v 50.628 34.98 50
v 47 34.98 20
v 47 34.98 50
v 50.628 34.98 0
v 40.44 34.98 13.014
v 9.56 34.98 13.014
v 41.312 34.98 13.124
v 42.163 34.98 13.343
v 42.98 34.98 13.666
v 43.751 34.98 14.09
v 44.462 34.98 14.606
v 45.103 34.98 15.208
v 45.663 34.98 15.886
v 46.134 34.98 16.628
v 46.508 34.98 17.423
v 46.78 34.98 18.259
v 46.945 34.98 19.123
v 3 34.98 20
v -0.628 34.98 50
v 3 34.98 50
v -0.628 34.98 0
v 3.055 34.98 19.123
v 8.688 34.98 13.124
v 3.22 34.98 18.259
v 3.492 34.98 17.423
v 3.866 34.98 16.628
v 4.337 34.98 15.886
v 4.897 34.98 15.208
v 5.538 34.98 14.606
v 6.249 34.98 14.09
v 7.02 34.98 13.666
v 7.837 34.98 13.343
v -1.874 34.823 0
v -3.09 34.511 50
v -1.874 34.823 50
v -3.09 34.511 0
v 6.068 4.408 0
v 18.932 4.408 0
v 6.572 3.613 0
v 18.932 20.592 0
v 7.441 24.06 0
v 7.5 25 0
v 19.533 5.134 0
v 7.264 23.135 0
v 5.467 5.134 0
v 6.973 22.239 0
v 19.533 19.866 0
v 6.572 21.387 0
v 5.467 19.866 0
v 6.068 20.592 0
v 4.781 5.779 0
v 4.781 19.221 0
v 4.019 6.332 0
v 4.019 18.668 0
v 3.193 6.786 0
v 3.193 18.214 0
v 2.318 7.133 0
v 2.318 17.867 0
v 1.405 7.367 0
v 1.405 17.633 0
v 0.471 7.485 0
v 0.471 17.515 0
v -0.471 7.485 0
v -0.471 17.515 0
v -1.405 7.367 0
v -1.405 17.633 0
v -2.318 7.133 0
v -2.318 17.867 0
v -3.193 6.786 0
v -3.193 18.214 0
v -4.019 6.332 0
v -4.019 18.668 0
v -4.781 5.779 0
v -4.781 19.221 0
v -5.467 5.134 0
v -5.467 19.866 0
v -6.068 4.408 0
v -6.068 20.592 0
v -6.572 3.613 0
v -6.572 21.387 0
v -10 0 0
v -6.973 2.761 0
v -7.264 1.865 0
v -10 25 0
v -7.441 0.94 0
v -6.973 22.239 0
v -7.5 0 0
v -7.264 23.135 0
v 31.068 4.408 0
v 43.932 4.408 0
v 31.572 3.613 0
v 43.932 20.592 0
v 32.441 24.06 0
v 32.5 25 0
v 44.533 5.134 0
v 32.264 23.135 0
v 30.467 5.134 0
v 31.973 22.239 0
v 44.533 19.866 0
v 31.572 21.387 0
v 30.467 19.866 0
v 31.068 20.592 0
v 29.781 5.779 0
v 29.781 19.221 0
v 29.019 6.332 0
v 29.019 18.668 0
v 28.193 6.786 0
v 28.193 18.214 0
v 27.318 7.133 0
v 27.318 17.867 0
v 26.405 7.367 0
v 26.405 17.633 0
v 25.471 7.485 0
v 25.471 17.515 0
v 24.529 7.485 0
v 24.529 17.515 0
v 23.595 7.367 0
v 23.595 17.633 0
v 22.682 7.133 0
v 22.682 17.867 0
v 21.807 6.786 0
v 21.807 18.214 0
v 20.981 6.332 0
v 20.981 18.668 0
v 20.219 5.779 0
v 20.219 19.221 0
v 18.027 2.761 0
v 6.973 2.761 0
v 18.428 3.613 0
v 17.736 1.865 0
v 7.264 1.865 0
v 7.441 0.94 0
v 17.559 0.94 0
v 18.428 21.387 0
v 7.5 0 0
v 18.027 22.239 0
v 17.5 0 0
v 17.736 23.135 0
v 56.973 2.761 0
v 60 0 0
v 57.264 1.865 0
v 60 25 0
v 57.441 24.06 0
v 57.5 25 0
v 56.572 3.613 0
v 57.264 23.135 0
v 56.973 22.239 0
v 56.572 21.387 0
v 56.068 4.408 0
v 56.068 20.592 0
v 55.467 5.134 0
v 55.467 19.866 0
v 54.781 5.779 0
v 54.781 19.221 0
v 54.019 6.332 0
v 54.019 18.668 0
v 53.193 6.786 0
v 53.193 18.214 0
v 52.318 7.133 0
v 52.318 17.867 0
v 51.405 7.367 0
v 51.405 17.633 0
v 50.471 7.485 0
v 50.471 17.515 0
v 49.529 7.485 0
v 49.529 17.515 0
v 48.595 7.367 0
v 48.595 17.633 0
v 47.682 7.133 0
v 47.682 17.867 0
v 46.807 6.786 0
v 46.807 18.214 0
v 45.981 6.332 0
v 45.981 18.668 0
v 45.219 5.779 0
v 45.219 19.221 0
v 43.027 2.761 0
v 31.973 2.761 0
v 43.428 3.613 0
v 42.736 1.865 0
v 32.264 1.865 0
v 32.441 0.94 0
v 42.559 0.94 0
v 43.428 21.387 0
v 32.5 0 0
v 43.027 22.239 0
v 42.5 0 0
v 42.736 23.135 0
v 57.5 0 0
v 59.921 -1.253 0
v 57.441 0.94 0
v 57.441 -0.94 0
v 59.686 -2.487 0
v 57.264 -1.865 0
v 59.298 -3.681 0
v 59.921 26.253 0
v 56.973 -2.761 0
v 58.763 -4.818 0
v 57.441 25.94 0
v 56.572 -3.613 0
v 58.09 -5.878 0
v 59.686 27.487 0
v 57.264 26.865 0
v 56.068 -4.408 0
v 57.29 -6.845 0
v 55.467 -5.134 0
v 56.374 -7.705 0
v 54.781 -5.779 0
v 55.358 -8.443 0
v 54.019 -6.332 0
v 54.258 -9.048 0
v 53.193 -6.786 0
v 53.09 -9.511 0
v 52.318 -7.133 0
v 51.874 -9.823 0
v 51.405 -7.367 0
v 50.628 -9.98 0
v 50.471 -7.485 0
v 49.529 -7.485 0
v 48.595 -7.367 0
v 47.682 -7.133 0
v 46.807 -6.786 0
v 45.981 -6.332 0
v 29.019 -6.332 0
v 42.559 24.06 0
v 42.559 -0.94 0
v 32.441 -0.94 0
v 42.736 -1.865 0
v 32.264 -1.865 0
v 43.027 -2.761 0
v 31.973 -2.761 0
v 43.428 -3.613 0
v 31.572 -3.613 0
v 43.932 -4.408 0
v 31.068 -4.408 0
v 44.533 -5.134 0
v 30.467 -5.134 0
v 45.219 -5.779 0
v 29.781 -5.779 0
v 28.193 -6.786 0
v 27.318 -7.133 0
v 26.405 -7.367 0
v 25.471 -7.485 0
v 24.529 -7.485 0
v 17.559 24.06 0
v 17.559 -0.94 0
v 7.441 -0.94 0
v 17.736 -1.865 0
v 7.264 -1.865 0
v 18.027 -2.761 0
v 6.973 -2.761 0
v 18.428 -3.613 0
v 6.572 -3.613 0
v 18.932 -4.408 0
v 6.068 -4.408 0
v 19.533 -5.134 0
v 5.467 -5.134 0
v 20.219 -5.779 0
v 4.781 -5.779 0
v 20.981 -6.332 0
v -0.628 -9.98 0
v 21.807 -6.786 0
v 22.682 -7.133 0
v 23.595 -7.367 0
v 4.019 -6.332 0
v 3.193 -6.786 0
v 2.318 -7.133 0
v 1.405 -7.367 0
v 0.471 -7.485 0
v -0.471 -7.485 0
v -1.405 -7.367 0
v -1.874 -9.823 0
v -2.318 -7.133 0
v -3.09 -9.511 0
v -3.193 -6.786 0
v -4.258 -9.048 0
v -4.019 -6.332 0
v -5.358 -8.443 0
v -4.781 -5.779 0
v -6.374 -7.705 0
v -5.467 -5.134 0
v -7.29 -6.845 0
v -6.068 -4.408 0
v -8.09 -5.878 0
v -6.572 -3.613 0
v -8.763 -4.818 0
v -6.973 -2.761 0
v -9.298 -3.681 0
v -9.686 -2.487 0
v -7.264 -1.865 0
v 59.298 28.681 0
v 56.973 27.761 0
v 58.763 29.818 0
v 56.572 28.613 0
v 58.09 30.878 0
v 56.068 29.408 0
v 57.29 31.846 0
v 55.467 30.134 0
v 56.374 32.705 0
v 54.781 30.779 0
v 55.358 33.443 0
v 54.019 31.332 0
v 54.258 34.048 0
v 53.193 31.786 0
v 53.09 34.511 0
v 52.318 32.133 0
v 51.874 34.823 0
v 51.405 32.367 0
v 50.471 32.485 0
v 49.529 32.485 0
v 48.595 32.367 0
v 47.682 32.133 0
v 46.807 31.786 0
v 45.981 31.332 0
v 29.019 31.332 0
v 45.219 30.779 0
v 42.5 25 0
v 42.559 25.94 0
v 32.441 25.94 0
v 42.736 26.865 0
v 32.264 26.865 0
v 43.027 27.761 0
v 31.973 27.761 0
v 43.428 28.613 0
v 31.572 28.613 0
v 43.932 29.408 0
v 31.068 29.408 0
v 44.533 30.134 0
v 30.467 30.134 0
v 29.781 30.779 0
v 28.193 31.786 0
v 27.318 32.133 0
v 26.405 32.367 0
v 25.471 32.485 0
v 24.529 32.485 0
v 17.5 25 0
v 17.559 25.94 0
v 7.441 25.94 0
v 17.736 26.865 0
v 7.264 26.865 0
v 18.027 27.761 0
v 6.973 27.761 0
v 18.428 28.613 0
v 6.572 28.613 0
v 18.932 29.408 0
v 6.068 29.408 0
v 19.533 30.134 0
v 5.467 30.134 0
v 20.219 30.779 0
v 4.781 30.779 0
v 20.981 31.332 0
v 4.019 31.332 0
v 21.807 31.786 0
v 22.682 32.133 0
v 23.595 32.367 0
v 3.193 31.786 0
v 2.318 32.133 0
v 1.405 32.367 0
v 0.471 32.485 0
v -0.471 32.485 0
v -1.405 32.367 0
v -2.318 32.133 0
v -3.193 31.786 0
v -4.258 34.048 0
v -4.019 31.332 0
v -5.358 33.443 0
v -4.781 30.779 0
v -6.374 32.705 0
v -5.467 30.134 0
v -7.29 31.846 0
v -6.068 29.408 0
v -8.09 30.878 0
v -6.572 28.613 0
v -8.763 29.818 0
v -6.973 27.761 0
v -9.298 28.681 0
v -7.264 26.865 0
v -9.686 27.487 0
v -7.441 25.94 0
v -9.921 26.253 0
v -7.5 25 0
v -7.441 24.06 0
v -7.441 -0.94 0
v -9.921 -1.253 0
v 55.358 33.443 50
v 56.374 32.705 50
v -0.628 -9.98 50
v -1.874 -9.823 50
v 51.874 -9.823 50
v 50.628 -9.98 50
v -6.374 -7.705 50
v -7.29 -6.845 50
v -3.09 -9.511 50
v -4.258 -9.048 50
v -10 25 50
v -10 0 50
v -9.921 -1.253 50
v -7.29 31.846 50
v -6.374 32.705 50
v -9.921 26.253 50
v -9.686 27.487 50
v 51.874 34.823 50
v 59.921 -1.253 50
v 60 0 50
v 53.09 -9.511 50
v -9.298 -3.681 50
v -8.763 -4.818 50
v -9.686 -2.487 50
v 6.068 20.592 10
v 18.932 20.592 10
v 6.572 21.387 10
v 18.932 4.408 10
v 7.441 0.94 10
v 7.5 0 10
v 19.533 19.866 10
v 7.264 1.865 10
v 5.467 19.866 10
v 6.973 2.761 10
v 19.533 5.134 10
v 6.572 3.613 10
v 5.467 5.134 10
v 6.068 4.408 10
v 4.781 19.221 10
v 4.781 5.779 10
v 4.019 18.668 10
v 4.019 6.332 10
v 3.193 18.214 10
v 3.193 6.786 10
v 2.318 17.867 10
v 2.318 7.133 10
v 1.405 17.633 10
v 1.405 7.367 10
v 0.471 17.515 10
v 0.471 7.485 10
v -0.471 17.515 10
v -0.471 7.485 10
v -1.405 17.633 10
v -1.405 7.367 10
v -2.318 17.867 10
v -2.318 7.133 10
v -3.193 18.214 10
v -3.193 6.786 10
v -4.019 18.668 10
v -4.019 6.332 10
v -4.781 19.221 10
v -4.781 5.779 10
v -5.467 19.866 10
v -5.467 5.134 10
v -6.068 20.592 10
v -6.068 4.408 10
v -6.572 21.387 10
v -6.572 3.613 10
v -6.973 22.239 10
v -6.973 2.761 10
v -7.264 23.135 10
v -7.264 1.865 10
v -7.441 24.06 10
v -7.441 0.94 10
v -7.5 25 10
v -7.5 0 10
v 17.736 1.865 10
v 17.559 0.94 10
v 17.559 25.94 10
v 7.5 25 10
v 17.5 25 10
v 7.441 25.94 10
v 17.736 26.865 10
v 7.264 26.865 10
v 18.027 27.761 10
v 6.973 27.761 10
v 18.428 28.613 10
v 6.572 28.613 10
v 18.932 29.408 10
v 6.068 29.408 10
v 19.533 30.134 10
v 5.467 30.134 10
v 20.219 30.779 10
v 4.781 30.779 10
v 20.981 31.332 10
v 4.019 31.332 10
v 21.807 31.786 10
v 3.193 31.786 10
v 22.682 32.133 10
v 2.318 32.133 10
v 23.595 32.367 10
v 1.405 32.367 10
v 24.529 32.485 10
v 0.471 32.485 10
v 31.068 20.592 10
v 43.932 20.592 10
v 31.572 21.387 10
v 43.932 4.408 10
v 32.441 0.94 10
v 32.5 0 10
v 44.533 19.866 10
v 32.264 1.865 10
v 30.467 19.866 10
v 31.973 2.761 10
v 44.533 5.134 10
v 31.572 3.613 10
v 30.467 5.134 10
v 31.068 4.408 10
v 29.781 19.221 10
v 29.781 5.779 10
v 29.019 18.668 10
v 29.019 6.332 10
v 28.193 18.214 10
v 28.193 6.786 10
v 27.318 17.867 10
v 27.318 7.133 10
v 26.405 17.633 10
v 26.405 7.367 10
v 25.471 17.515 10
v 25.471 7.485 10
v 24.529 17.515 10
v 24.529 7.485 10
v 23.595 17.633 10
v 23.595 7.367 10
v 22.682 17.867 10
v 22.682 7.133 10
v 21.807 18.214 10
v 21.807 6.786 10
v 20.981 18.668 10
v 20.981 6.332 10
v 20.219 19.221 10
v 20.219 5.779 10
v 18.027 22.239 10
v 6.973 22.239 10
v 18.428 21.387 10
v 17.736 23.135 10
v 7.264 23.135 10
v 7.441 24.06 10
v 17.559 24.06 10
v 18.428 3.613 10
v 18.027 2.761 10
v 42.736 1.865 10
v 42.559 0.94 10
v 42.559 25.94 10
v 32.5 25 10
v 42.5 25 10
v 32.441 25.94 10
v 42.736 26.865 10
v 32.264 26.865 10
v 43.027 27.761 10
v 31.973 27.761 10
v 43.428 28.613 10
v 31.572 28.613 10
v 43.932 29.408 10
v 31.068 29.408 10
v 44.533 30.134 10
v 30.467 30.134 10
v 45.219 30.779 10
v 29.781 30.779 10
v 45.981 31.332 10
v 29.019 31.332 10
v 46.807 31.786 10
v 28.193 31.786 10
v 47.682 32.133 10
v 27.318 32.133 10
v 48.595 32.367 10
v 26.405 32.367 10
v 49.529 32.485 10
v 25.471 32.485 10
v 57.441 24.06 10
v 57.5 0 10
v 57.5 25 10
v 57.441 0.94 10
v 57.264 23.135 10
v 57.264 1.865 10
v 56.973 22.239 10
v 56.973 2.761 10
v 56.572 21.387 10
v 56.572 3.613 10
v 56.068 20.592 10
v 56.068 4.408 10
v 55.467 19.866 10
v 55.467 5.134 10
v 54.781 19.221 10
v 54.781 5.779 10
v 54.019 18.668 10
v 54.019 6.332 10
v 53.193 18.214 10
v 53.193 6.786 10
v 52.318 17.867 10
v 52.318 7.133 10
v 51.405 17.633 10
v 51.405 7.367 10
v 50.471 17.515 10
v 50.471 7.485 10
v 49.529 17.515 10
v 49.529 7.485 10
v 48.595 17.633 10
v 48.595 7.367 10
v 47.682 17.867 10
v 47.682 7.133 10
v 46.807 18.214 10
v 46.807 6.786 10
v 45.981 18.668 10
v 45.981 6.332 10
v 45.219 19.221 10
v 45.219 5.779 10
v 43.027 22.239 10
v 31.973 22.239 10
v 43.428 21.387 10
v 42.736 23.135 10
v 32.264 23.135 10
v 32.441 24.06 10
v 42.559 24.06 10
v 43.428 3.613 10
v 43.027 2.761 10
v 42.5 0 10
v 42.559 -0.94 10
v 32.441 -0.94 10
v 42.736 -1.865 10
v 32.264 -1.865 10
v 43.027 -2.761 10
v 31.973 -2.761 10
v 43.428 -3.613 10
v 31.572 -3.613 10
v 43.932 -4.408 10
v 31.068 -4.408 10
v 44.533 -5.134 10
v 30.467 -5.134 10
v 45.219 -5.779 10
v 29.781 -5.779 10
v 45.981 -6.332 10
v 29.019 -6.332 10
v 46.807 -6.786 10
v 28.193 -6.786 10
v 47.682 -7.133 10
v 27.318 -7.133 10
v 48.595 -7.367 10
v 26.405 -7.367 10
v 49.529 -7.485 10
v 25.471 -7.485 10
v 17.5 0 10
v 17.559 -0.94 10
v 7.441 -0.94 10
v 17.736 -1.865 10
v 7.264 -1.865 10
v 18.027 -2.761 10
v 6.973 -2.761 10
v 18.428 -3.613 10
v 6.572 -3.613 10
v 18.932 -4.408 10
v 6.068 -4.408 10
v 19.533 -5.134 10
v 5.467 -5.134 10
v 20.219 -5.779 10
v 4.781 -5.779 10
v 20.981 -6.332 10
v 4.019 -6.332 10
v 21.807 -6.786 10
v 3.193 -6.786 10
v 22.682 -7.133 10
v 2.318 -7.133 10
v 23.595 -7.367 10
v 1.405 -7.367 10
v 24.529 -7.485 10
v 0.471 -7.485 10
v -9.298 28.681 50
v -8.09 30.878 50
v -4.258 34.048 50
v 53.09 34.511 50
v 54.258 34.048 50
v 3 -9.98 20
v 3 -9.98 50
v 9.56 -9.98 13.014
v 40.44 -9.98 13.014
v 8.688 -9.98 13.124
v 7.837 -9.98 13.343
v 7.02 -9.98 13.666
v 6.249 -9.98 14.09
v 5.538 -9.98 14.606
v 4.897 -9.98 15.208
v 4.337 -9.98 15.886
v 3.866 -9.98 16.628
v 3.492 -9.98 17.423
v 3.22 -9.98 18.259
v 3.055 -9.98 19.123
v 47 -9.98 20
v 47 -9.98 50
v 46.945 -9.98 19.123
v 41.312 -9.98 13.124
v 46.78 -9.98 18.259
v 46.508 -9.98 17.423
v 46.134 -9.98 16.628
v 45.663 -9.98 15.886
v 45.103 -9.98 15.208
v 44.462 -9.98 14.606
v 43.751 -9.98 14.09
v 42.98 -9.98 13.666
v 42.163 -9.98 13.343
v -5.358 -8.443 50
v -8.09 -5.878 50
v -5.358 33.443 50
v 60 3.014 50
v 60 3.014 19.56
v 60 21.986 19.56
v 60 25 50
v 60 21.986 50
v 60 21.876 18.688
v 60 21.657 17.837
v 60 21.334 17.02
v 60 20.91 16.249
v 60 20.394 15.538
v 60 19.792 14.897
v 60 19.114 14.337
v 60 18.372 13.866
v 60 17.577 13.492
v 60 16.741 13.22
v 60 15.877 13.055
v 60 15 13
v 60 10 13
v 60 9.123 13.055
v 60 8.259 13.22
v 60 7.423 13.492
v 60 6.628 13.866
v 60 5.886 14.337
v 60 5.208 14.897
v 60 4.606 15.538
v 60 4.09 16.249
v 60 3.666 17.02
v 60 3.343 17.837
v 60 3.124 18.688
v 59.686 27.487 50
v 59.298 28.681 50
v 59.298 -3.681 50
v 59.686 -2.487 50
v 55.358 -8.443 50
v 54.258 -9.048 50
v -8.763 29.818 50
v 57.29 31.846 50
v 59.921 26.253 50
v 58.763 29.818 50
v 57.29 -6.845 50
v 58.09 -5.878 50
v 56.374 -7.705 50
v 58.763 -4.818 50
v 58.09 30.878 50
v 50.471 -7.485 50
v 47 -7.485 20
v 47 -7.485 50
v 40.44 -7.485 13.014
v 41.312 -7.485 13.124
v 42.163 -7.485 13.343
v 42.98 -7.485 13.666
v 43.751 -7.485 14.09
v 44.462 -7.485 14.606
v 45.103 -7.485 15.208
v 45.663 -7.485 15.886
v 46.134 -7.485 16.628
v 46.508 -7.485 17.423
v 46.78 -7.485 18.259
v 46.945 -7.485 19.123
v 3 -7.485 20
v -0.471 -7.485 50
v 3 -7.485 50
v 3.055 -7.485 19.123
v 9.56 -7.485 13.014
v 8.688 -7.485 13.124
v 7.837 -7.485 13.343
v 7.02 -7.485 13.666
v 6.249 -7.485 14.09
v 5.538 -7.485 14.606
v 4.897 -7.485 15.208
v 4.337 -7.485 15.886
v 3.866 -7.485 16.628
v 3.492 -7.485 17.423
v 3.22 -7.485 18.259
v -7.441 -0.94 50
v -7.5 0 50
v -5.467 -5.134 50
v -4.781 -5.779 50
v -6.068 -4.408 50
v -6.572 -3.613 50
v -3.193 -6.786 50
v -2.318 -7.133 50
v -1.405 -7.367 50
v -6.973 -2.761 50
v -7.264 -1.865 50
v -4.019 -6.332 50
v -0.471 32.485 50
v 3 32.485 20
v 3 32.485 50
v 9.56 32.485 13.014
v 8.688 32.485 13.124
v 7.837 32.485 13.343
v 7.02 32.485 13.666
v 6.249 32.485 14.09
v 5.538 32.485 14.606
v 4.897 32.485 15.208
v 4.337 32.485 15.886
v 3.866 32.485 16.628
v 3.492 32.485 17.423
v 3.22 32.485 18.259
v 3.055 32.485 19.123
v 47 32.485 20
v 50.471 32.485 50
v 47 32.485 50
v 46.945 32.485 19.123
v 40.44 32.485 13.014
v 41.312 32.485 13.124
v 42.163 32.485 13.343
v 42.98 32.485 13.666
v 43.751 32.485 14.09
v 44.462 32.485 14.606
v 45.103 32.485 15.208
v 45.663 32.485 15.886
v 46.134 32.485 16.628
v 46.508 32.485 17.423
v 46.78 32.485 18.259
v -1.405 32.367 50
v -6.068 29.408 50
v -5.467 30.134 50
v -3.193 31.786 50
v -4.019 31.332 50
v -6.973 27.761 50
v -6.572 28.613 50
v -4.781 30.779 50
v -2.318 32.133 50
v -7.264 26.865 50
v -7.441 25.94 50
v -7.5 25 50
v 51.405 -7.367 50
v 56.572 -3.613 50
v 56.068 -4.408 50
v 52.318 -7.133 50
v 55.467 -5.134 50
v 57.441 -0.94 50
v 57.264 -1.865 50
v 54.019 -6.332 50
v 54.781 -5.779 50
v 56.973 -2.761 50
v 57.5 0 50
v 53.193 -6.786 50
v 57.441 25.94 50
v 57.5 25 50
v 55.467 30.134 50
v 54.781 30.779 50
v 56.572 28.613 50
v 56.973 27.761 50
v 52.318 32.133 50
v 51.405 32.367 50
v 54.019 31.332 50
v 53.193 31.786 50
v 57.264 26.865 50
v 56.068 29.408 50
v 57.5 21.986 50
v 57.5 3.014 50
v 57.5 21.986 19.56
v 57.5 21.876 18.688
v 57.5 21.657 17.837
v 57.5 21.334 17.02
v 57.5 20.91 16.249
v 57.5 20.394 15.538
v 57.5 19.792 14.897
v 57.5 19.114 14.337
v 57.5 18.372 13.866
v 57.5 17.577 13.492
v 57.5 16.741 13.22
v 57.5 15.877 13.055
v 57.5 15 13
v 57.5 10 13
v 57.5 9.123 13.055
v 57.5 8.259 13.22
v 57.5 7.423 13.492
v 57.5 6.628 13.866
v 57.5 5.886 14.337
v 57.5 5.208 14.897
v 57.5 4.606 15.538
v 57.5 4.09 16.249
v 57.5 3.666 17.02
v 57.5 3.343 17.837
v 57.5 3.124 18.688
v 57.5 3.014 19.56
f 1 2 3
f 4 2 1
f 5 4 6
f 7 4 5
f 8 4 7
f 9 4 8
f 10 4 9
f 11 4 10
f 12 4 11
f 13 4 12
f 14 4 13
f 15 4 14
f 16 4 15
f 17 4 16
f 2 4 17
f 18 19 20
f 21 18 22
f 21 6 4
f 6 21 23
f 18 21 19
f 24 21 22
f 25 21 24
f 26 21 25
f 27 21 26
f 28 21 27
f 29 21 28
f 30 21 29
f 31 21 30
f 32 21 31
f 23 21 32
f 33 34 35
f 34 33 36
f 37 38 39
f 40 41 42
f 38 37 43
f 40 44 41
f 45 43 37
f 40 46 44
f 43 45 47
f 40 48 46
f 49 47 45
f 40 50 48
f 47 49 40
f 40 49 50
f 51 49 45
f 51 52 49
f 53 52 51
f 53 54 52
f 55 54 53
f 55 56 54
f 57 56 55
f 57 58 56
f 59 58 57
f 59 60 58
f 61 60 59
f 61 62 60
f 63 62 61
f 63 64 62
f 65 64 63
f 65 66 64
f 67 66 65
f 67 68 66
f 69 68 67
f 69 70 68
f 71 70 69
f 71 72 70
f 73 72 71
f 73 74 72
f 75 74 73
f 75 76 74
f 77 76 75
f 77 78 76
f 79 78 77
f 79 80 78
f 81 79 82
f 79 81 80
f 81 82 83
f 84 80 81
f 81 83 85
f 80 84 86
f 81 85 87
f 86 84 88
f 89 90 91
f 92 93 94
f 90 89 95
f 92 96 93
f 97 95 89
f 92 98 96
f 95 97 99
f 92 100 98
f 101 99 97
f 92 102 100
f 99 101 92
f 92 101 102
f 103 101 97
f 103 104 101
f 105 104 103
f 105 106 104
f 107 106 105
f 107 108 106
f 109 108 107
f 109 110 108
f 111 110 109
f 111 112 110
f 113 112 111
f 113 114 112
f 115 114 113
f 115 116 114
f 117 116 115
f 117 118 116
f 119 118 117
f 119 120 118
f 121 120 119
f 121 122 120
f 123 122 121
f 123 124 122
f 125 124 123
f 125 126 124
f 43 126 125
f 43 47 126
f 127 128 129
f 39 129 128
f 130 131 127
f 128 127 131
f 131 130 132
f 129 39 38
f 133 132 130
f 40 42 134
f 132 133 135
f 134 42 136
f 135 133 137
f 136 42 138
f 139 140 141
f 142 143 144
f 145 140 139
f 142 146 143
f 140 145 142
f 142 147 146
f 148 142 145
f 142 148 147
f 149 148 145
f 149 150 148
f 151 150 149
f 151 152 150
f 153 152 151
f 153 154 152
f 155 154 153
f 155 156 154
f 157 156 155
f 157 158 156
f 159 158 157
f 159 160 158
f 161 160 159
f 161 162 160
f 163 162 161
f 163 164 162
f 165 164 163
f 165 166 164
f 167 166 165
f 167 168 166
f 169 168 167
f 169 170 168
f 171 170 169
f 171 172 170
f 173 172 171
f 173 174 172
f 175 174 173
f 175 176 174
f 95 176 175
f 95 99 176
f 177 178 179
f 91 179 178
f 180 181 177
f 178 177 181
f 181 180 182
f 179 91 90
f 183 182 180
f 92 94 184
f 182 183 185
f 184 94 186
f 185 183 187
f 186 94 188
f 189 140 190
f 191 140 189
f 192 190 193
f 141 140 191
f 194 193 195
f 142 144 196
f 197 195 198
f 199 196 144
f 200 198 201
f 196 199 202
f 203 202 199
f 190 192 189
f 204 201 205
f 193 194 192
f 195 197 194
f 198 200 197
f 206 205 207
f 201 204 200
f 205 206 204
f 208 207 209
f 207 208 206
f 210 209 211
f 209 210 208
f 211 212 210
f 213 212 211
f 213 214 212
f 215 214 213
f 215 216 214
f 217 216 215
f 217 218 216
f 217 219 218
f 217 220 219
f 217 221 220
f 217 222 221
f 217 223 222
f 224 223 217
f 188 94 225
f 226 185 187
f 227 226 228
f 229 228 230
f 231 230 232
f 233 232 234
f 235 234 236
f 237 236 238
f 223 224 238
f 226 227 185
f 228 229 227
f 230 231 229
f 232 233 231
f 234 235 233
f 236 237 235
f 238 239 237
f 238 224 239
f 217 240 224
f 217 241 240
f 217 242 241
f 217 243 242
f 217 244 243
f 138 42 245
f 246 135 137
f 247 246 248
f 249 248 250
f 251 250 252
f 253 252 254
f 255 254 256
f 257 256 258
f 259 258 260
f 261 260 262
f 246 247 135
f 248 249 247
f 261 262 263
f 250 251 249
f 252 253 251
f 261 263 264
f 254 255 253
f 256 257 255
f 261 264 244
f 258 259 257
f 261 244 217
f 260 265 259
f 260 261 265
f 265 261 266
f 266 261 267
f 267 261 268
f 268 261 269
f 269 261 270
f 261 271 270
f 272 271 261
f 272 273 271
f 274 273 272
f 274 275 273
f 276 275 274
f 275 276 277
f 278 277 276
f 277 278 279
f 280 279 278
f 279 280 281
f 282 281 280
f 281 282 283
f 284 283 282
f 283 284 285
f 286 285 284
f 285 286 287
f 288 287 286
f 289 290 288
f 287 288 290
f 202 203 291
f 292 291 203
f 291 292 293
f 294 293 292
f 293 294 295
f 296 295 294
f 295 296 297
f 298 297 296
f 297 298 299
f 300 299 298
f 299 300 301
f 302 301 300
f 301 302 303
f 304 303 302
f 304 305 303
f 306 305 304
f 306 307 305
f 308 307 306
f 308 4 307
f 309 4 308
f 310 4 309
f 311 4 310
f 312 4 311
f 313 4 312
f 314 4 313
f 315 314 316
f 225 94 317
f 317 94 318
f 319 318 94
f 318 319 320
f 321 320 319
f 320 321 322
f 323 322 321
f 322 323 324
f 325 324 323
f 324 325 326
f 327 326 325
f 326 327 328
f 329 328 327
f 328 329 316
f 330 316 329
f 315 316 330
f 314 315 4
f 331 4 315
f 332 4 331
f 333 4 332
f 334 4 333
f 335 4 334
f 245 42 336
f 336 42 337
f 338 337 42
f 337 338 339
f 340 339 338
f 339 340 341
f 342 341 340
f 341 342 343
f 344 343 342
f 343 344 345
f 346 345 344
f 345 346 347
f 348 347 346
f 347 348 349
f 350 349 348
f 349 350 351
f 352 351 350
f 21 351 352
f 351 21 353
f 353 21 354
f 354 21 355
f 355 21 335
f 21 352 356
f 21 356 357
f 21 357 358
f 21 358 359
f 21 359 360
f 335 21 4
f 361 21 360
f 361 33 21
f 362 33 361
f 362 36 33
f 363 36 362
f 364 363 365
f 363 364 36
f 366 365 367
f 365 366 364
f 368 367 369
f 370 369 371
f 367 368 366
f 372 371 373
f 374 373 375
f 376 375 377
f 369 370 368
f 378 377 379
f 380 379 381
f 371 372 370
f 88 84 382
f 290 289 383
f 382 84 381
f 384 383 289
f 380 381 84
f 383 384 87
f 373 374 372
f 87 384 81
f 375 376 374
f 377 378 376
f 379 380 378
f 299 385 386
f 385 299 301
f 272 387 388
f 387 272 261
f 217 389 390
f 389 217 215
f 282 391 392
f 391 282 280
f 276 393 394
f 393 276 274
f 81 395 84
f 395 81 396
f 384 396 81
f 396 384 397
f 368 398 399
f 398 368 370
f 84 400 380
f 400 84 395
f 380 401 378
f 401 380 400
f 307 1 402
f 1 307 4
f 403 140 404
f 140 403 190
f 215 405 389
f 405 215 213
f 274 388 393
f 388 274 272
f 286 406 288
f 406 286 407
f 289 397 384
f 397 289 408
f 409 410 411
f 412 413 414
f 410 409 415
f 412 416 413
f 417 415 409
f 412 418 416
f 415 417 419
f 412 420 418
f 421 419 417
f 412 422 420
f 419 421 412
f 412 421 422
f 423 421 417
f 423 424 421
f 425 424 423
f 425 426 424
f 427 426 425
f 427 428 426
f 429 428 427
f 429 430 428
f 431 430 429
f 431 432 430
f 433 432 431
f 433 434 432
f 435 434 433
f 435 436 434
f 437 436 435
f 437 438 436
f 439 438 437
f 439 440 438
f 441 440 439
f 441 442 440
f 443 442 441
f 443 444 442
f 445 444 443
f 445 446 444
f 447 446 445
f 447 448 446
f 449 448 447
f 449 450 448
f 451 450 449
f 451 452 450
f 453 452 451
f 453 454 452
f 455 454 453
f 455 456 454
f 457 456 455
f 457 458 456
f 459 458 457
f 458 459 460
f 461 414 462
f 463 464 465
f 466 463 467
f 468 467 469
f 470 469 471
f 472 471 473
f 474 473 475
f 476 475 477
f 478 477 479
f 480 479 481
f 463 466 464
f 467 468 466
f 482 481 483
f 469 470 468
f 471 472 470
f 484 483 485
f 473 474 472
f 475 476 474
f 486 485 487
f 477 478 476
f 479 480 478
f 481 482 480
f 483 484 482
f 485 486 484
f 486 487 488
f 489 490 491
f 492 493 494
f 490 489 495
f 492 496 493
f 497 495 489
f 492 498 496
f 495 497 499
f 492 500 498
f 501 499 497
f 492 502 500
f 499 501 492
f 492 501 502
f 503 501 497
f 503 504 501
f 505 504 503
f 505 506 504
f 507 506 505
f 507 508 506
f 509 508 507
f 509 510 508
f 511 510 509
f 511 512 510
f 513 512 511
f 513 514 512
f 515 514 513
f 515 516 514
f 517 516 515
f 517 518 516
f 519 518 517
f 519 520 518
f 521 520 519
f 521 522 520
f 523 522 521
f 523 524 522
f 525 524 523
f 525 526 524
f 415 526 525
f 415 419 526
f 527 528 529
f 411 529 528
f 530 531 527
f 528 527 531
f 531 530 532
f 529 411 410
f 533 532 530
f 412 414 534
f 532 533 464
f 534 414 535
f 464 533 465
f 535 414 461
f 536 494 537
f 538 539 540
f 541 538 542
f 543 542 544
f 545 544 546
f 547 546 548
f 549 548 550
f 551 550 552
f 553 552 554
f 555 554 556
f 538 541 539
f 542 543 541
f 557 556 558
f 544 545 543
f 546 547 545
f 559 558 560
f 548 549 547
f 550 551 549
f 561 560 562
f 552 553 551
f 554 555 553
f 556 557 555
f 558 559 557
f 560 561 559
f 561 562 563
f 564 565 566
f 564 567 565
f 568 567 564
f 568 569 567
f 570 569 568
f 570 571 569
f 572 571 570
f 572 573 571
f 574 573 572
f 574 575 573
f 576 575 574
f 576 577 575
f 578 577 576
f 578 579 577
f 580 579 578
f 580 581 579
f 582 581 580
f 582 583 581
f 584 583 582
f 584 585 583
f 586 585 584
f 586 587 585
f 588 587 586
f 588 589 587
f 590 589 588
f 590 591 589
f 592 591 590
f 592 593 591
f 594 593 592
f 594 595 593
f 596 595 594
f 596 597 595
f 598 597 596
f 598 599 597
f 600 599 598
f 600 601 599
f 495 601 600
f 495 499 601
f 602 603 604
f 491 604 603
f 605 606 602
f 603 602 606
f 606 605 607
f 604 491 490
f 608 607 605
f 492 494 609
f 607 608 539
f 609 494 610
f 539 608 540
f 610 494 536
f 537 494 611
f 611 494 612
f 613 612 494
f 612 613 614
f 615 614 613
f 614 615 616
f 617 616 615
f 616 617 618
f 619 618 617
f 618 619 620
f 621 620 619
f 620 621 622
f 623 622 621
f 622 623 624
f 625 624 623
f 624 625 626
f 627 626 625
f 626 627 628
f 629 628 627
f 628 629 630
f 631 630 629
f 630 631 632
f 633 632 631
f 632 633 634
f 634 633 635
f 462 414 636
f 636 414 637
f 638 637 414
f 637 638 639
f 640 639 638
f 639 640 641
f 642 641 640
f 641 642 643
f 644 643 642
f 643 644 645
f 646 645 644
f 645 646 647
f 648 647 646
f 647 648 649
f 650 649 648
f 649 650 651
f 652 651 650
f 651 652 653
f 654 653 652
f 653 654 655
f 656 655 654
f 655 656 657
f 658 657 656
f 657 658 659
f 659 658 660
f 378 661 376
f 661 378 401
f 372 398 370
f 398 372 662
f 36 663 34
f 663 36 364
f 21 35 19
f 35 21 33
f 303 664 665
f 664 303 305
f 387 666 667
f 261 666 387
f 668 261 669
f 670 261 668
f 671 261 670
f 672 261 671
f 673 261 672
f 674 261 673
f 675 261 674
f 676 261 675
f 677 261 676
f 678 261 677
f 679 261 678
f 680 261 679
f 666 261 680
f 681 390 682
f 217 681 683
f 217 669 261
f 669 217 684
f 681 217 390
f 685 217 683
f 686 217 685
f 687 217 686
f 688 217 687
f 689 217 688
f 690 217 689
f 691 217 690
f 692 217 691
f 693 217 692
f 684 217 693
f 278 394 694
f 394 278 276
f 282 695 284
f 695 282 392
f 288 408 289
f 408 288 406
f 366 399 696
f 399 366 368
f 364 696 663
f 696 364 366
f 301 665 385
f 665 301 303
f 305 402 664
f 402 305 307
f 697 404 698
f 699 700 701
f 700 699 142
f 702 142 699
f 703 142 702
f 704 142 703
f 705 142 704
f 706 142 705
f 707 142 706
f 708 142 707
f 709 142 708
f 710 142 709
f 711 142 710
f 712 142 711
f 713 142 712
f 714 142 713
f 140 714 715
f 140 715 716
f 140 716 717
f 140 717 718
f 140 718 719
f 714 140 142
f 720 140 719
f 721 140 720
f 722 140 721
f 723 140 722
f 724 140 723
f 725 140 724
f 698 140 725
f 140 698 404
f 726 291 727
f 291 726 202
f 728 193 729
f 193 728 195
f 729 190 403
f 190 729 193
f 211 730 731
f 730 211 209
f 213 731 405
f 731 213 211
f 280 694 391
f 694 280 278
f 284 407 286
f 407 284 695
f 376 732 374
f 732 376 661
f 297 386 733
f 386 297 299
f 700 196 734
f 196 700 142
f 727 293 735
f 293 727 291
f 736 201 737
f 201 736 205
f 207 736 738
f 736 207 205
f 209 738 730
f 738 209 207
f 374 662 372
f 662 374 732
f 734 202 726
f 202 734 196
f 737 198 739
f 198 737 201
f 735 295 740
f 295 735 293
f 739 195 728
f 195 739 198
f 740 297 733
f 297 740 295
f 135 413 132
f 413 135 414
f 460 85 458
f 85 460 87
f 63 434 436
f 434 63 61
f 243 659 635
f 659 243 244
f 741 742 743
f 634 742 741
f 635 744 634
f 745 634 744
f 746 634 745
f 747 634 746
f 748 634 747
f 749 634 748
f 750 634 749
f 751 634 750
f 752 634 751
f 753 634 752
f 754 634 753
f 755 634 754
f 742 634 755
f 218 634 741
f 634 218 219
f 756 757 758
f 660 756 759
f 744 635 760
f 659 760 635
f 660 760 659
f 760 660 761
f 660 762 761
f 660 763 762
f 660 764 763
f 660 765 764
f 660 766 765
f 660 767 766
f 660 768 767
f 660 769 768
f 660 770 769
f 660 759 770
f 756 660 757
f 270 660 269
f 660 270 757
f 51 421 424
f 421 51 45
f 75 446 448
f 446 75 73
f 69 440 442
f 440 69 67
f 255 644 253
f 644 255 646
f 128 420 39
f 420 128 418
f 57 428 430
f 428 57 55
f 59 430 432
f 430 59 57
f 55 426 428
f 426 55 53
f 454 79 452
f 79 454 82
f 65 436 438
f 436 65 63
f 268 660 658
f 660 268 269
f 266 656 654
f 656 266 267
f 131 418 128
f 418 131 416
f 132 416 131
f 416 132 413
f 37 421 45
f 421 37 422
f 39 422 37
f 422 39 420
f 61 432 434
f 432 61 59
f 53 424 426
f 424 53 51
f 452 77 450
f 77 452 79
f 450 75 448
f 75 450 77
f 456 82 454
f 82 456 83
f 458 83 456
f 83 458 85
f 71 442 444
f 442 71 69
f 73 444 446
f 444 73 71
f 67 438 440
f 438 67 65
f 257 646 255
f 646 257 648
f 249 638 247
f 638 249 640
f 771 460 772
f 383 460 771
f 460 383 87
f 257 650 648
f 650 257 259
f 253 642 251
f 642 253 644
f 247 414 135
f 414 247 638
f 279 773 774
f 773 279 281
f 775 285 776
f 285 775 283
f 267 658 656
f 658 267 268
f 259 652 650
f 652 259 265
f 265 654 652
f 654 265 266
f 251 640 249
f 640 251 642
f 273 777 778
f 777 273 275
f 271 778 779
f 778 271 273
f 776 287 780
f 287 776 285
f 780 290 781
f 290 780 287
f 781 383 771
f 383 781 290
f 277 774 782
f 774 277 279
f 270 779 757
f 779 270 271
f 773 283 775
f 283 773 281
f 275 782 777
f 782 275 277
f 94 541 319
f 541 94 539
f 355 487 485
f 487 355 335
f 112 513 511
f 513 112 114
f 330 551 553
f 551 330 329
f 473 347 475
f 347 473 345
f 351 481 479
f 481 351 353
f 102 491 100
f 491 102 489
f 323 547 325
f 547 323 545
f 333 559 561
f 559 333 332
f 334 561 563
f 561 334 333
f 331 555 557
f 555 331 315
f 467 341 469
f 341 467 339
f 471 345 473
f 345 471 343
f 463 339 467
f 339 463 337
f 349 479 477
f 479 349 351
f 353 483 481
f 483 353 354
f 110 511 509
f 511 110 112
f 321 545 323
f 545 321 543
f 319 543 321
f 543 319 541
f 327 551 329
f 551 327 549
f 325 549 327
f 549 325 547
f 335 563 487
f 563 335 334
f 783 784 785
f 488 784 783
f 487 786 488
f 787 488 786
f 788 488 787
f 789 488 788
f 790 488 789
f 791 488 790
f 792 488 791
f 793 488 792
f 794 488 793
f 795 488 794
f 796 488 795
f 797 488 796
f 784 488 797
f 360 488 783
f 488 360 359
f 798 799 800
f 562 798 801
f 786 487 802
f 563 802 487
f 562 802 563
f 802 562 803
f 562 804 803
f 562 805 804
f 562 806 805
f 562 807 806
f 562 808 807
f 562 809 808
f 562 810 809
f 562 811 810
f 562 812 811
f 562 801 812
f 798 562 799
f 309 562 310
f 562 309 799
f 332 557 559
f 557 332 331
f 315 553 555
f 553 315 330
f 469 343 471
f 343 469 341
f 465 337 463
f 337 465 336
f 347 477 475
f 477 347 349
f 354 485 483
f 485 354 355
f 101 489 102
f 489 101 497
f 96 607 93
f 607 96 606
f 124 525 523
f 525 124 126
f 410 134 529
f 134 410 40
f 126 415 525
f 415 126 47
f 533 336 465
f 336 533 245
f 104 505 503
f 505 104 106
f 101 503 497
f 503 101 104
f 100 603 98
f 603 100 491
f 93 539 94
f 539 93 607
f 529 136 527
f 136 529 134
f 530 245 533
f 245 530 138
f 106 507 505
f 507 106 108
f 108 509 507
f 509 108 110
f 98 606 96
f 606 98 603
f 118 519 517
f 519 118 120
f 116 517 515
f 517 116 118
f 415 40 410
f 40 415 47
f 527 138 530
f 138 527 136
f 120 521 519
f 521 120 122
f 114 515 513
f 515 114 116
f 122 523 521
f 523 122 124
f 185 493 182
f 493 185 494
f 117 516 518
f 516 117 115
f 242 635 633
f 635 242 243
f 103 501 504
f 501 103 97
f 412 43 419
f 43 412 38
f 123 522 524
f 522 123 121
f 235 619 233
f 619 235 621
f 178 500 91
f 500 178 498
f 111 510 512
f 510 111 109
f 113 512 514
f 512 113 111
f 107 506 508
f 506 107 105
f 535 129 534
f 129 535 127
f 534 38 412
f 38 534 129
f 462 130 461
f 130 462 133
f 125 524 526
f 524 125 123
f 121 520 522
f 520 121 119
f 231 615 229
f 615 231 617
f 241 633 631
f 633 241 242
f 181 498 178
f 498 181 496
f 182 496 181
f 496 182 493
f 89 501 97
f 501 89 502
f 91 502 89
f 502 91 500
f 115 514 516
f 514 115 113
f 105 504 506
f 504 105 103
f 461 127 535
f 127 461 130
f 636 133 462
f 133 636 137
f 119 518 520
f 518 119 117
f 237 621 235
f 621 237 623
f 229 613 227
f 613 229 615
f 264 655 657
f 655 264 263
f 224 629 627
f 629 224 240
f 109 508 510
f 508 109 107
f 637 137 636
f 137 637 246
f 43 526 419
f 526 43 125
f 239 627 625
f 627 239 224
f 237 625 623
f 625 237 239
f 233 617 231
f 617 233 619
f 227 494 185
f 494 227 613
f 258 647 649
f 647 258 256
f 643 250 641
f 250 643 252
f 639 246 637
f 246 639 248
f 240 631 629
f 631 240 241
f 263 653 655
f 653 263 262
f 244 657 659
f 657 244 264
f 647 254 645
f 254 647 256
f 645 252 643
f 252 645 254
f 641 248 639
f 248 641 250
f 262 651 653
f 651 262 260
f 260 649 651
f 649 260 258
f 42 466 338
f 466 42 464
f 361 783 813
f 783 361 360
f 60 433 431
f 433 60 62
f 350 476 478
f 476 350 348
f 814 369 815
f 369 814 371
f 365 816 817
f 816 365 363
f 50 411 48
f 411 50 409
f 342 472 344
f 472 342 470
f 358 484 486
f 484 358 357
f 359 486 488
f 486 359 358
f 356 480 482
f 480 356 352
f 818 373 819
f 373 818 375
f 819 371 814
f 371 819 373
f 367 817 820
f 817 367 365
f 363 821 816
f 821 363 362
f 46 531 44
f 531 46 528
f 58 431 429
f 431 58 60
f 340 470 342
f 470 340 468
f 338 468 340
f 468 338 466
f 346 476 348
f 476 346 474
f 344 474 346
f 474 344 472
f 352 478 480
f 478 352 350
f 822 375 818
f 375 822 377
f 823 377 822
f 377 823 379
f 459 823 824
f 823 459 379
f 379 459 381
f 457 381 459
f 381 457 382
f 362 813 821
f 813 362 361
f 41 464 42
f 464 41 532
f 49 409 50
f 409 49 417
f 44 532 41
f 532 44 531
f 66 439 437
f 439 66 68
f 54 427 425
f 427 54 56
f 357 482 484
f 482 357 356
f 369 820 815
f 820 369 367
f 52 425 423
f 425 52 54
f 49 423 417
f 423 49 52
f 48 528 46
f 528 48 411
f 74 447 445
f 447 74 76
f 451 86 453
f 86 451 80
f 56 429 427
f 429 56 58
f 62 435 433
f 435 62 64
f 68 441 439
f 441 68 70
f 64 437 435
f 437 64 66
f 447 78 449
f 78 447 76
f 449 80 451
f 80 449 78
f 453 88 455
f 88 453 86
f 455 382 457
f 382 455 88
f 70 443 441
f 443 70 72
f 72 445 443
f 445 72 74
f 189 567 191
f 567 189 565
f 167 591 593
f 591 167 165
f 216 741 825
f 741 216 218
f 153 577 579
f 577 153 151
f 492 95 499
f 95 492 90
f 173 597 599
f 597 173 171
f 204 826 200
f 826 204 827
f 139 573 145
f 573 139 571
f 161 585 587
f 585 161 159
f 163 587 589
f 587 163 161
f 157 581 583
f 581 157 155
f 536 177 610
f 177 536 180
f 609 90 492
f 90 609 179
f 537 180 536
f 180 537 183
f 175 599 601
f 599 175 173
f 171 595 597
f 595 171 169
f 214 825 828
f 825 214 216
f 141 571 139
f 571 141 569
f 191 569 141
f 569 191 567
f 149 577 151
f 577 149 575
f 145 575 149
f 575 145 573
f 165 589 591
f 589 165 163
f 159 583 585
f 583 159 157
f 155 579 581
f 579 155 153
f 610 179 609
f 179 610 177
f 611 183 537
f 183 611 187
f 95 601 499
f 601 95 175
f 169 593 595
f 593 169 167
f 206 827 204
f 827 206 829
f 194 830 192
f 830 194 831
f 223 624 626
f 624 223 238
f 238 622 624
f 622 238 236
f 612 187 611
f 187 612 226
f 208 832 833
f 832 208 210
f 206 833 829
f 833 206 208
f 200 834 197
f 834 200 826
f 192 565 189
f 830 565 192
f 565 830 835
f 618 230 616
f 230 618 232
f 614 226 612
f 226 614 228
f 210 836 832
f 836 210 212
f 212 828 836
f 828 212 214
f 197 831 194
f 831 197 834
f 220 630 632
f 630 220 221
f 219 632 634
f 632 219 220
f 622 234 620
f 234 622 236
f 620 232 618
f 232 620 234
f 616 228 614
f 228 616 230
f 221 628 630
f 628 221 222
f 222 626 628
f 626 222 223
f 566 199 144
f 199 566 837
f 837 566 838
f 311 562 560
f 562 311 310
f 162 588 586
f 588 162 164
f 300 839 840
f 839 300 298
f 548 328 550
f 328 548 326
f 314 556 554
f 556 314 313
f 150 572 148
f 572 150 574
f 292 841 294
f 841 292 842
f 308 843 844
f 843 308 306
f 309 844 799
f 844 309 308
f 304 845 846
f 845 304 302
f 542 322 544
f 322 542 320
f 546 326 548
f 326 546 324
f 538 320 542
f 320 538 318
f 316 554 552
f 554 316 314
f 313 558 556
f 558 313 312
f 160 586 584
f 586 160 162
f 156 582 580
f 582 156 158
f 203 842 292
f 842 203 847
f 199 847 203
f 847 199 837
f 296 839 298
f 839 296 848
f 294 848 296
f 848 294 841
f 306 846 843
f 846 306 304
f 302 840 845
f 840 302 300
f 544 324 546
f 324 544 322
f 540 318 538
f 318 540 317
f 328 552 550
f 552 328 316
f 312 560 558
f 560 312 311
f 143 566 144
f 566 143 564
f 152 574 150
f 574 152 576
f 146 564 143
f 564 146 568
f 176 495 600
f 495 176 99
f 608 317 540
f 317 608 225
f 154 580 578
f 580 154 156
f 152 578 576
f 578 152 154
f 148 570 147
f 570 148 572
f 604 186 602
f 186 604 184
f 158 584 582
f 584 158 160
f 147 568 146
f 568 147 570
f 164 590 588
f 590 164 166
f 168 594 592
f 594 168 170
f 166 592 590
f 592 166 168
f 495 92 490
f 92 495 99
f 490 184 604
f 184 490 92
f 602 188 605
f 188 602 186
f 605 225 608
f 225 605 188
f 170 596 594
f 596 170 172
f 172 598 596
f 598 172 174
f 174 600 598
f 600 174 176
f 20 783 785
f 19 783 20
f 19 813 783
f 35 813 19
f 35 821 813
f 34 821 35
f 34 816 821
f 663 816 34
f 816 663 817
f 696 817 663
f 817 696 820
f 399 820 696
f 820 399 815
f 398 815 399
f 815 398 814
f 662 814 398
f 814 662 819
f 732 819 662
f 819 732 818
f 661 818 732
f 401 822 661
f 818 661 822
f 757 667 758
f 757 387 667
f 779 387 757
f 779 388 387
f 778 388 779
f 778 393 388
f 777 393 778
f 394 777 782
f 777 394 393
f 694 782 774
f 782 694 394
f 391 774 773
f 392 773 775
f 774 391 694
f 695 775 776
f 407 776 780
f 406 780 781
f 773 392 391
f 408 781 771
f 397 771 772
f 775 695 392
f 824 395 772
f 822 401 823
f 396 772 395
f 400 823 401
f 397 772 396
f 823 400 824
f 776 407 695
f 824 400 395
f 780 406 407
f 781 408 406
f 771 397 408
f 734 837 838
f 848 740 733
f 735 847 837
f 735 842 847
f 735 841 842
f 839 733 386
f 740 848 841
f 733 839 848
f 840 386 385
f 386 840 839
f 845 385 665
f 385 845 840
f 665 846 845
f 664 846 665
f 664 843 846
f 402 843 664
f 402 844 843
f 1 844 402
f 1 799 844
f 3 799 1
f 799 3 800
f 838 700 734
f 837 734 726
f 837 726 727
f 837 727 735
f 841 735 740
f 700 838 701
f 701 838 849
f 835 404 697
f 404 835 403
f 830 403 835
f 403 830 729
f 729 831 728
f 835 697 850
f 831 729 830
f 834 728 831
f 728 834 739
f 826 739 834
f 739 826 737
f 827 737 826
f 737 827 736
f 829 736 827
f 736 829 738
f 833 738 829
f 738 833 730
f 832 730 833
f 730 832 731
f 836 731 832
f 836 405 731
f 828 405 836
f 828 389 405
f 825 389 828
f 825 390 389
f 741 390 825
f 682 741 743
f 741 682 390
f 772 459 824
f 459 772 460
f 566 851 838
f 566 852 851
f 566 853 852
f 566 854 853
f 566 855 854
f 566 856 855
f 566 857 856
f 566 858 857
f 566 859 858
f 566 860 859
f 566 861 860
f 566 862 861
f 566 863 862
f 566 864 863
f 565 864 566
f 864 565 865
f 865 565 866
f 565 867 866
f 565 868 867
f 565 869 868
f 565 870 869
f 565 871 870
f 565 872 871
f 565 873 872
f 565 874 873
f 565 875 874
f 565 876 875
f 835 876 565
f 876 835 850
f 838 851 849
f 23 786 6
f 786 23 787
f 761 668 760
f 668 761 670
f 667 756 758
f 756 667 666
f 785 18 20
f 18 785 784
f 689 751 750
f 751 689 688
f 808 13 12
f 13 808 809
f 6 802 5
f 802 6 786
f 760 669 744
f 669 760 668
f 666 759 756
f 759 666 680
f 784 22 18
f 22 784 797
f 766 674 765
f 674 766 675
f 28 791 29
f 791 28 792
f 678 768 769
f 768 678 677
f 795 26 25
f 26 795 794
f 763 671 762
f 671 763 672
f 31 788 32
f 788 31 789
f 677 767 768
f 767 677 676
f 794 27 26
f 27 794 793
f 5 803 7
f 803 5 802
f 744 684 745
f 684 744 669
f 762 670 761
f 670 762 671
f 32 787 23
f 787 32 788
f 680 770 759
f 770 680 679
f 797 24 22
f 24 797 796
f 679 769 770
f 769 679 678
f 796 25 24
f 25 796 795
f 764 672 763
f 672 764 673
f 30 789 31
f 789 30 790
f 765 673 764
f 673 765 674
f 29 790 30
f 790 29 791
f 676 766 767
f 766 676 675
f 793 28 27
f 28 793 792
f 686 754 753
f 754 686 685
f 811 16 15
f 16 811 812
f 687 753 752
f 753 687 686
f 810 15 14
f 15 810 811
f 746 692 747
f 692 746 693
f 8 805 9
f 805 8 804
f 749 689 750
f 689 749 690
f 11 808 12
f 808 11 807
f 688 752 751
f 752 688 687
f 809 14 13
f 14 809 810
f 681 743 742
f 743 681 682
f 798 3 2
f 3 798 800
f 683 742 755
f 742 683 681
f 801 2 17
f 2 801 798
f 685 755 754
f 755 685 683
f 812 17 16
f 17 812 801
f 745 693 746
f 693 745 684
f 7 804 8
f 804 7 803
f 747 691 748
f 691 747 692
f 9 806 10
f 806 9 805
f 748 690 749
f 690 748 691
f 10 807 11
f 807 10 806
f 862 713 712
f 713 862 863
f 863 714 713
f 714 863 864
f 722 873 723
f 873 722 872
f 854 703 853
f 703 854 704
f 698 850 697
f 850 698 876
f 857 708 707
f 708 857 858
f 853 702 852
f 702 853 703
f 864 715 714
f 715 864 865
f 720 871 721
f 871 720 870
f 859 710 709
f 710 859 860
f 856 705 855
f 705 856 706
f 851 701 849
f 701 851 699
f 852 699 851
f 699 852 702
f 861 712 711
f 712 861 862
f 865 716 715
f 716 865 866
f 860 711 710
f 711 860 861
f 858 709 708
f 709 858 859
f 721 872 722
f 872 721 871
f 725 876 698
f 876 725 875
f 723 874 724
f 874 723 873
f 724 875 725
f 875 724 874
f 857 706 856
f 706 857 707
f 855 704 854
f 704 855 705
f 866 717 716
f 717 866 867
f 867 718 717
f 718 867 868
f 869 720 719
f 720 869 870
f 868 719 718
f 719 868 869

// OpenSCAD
//Polargraph Pen holder and depth setting tool
//Copyright Mark Benson 2016 CCNC 2016

// This is to hold a bunch of pens in their push fit collars and also includes a depth setting tool. With pen cap removed, drop in the pen in its pen collar, losen screw so pen drops to the right depth, tighten screw, remove, replace cap and store in pen holder! (Thats the idea anyway...)

//push fit pen collar from gondola
/*    difference()
    {
        cylinder(r=20/2,h=10,$fn=50);
        cylinder(r=15/2,h=10,$fn=50);
    }*/
    
    
//body (top with pen holder holes)
difference()
{
    hull()
    {
        translate([0,0,0])    
        cylinder(d=20,h=10,$fn=50);
        
        translate([50,0,0])    
        cylinder(d=20,h=10,$fn=50);
        
        translate([50,25,0])    
        cylinder(d=20,h=10,$fn=50);
        
        translate([0,25,0])    
        cylinder(d=20,h=10,$fn=50);
    }

    translate([0,0,0])    
    cylinder(d=15,h=10,$fn=50);

    translate([25,25,0])    
    cylinder(d=15,h=10,$fn=50);

    translate([25,0,0])    
    cylinder(d=15,h=10,$fn=50);

    translate([0,25,0])    
    cylinder(d=15,h=10,$fn=50);
    
    translate([50,0,0])    
    cylinder(d=15,h=10,$fn=50);
    
    translate([50,25,0])    
    cylinder(d=15,h=10,$fn=50);
    
}


//legs?
translate([0,0,10])
difference()
{
    hull()
    {
        translate([0,0,0])    
        cylinder(d=20,h=40,$fn=50);
        
        translate([50,0,0])    
        cylinder(d=20,h=40,$fn=50);
        
        translate([50,25,0])    
        cylinder(d=20,h=40,$fn=50);
        
        translate([0,25,0])    
        cylinder(d=20,h=40,$fn=50);
    }
    
        hull()
    {
        translate([0,0,0])    
        cylinder(d=20-5,h=40,$fn=50);
        
        translate([50,0,0])    
        cylinder(d=20-5,h=40,$fn=50);
        
        translate([50,25,0])    
        cylinder(d=20-5,h=40,$fn=50);
        
        translate([0,25,0])    
        cylinder(d=20-5,h=40,$fn=50);
    }
    
    //side cutouts
    //Wide side
    translate([0,0,10])
    hull()
    {
            translate([10,40,0]) 
            rotate([90,0,0])
            cylinder(d=20-6,h=60,$fn=50);
    
            translate([40,40,0]) 
            rotate([90,0,0])
            cylinder(d=20-6,h=60,$fn=50);
    
            translate([10,40,40]) 
            rotate([90,0,0])
            cylinder(d=20-6,h=60,$fn=50);
    
            translate([40,40,40]) 
            rotate([90,0,0])
            cylinder(d=20-6,h=60,$fn=50);
    }
    
    //side cutouts
    //Narrow side
    translate([10,5,10])
    hull()
    {
            translate([0,5,0]) 
            rotate([0,90,0])
            cylinder(d=20-6,h=60,$fn=50);
    
            translate([0,10,40]) 
            rotate([0,90,0])
            cylinder(d=20-6,h=60,$fn=50);
    
            translate([0,10,0]) 
            rotate([0,90,0])
            cylinder(d=20-6,h=60,$fn=50);
    
            translate([0,5,40]) 
            rotate([0,90,0])
            cylinder(d=20-6,h=60,$fn=50);
    }
}
